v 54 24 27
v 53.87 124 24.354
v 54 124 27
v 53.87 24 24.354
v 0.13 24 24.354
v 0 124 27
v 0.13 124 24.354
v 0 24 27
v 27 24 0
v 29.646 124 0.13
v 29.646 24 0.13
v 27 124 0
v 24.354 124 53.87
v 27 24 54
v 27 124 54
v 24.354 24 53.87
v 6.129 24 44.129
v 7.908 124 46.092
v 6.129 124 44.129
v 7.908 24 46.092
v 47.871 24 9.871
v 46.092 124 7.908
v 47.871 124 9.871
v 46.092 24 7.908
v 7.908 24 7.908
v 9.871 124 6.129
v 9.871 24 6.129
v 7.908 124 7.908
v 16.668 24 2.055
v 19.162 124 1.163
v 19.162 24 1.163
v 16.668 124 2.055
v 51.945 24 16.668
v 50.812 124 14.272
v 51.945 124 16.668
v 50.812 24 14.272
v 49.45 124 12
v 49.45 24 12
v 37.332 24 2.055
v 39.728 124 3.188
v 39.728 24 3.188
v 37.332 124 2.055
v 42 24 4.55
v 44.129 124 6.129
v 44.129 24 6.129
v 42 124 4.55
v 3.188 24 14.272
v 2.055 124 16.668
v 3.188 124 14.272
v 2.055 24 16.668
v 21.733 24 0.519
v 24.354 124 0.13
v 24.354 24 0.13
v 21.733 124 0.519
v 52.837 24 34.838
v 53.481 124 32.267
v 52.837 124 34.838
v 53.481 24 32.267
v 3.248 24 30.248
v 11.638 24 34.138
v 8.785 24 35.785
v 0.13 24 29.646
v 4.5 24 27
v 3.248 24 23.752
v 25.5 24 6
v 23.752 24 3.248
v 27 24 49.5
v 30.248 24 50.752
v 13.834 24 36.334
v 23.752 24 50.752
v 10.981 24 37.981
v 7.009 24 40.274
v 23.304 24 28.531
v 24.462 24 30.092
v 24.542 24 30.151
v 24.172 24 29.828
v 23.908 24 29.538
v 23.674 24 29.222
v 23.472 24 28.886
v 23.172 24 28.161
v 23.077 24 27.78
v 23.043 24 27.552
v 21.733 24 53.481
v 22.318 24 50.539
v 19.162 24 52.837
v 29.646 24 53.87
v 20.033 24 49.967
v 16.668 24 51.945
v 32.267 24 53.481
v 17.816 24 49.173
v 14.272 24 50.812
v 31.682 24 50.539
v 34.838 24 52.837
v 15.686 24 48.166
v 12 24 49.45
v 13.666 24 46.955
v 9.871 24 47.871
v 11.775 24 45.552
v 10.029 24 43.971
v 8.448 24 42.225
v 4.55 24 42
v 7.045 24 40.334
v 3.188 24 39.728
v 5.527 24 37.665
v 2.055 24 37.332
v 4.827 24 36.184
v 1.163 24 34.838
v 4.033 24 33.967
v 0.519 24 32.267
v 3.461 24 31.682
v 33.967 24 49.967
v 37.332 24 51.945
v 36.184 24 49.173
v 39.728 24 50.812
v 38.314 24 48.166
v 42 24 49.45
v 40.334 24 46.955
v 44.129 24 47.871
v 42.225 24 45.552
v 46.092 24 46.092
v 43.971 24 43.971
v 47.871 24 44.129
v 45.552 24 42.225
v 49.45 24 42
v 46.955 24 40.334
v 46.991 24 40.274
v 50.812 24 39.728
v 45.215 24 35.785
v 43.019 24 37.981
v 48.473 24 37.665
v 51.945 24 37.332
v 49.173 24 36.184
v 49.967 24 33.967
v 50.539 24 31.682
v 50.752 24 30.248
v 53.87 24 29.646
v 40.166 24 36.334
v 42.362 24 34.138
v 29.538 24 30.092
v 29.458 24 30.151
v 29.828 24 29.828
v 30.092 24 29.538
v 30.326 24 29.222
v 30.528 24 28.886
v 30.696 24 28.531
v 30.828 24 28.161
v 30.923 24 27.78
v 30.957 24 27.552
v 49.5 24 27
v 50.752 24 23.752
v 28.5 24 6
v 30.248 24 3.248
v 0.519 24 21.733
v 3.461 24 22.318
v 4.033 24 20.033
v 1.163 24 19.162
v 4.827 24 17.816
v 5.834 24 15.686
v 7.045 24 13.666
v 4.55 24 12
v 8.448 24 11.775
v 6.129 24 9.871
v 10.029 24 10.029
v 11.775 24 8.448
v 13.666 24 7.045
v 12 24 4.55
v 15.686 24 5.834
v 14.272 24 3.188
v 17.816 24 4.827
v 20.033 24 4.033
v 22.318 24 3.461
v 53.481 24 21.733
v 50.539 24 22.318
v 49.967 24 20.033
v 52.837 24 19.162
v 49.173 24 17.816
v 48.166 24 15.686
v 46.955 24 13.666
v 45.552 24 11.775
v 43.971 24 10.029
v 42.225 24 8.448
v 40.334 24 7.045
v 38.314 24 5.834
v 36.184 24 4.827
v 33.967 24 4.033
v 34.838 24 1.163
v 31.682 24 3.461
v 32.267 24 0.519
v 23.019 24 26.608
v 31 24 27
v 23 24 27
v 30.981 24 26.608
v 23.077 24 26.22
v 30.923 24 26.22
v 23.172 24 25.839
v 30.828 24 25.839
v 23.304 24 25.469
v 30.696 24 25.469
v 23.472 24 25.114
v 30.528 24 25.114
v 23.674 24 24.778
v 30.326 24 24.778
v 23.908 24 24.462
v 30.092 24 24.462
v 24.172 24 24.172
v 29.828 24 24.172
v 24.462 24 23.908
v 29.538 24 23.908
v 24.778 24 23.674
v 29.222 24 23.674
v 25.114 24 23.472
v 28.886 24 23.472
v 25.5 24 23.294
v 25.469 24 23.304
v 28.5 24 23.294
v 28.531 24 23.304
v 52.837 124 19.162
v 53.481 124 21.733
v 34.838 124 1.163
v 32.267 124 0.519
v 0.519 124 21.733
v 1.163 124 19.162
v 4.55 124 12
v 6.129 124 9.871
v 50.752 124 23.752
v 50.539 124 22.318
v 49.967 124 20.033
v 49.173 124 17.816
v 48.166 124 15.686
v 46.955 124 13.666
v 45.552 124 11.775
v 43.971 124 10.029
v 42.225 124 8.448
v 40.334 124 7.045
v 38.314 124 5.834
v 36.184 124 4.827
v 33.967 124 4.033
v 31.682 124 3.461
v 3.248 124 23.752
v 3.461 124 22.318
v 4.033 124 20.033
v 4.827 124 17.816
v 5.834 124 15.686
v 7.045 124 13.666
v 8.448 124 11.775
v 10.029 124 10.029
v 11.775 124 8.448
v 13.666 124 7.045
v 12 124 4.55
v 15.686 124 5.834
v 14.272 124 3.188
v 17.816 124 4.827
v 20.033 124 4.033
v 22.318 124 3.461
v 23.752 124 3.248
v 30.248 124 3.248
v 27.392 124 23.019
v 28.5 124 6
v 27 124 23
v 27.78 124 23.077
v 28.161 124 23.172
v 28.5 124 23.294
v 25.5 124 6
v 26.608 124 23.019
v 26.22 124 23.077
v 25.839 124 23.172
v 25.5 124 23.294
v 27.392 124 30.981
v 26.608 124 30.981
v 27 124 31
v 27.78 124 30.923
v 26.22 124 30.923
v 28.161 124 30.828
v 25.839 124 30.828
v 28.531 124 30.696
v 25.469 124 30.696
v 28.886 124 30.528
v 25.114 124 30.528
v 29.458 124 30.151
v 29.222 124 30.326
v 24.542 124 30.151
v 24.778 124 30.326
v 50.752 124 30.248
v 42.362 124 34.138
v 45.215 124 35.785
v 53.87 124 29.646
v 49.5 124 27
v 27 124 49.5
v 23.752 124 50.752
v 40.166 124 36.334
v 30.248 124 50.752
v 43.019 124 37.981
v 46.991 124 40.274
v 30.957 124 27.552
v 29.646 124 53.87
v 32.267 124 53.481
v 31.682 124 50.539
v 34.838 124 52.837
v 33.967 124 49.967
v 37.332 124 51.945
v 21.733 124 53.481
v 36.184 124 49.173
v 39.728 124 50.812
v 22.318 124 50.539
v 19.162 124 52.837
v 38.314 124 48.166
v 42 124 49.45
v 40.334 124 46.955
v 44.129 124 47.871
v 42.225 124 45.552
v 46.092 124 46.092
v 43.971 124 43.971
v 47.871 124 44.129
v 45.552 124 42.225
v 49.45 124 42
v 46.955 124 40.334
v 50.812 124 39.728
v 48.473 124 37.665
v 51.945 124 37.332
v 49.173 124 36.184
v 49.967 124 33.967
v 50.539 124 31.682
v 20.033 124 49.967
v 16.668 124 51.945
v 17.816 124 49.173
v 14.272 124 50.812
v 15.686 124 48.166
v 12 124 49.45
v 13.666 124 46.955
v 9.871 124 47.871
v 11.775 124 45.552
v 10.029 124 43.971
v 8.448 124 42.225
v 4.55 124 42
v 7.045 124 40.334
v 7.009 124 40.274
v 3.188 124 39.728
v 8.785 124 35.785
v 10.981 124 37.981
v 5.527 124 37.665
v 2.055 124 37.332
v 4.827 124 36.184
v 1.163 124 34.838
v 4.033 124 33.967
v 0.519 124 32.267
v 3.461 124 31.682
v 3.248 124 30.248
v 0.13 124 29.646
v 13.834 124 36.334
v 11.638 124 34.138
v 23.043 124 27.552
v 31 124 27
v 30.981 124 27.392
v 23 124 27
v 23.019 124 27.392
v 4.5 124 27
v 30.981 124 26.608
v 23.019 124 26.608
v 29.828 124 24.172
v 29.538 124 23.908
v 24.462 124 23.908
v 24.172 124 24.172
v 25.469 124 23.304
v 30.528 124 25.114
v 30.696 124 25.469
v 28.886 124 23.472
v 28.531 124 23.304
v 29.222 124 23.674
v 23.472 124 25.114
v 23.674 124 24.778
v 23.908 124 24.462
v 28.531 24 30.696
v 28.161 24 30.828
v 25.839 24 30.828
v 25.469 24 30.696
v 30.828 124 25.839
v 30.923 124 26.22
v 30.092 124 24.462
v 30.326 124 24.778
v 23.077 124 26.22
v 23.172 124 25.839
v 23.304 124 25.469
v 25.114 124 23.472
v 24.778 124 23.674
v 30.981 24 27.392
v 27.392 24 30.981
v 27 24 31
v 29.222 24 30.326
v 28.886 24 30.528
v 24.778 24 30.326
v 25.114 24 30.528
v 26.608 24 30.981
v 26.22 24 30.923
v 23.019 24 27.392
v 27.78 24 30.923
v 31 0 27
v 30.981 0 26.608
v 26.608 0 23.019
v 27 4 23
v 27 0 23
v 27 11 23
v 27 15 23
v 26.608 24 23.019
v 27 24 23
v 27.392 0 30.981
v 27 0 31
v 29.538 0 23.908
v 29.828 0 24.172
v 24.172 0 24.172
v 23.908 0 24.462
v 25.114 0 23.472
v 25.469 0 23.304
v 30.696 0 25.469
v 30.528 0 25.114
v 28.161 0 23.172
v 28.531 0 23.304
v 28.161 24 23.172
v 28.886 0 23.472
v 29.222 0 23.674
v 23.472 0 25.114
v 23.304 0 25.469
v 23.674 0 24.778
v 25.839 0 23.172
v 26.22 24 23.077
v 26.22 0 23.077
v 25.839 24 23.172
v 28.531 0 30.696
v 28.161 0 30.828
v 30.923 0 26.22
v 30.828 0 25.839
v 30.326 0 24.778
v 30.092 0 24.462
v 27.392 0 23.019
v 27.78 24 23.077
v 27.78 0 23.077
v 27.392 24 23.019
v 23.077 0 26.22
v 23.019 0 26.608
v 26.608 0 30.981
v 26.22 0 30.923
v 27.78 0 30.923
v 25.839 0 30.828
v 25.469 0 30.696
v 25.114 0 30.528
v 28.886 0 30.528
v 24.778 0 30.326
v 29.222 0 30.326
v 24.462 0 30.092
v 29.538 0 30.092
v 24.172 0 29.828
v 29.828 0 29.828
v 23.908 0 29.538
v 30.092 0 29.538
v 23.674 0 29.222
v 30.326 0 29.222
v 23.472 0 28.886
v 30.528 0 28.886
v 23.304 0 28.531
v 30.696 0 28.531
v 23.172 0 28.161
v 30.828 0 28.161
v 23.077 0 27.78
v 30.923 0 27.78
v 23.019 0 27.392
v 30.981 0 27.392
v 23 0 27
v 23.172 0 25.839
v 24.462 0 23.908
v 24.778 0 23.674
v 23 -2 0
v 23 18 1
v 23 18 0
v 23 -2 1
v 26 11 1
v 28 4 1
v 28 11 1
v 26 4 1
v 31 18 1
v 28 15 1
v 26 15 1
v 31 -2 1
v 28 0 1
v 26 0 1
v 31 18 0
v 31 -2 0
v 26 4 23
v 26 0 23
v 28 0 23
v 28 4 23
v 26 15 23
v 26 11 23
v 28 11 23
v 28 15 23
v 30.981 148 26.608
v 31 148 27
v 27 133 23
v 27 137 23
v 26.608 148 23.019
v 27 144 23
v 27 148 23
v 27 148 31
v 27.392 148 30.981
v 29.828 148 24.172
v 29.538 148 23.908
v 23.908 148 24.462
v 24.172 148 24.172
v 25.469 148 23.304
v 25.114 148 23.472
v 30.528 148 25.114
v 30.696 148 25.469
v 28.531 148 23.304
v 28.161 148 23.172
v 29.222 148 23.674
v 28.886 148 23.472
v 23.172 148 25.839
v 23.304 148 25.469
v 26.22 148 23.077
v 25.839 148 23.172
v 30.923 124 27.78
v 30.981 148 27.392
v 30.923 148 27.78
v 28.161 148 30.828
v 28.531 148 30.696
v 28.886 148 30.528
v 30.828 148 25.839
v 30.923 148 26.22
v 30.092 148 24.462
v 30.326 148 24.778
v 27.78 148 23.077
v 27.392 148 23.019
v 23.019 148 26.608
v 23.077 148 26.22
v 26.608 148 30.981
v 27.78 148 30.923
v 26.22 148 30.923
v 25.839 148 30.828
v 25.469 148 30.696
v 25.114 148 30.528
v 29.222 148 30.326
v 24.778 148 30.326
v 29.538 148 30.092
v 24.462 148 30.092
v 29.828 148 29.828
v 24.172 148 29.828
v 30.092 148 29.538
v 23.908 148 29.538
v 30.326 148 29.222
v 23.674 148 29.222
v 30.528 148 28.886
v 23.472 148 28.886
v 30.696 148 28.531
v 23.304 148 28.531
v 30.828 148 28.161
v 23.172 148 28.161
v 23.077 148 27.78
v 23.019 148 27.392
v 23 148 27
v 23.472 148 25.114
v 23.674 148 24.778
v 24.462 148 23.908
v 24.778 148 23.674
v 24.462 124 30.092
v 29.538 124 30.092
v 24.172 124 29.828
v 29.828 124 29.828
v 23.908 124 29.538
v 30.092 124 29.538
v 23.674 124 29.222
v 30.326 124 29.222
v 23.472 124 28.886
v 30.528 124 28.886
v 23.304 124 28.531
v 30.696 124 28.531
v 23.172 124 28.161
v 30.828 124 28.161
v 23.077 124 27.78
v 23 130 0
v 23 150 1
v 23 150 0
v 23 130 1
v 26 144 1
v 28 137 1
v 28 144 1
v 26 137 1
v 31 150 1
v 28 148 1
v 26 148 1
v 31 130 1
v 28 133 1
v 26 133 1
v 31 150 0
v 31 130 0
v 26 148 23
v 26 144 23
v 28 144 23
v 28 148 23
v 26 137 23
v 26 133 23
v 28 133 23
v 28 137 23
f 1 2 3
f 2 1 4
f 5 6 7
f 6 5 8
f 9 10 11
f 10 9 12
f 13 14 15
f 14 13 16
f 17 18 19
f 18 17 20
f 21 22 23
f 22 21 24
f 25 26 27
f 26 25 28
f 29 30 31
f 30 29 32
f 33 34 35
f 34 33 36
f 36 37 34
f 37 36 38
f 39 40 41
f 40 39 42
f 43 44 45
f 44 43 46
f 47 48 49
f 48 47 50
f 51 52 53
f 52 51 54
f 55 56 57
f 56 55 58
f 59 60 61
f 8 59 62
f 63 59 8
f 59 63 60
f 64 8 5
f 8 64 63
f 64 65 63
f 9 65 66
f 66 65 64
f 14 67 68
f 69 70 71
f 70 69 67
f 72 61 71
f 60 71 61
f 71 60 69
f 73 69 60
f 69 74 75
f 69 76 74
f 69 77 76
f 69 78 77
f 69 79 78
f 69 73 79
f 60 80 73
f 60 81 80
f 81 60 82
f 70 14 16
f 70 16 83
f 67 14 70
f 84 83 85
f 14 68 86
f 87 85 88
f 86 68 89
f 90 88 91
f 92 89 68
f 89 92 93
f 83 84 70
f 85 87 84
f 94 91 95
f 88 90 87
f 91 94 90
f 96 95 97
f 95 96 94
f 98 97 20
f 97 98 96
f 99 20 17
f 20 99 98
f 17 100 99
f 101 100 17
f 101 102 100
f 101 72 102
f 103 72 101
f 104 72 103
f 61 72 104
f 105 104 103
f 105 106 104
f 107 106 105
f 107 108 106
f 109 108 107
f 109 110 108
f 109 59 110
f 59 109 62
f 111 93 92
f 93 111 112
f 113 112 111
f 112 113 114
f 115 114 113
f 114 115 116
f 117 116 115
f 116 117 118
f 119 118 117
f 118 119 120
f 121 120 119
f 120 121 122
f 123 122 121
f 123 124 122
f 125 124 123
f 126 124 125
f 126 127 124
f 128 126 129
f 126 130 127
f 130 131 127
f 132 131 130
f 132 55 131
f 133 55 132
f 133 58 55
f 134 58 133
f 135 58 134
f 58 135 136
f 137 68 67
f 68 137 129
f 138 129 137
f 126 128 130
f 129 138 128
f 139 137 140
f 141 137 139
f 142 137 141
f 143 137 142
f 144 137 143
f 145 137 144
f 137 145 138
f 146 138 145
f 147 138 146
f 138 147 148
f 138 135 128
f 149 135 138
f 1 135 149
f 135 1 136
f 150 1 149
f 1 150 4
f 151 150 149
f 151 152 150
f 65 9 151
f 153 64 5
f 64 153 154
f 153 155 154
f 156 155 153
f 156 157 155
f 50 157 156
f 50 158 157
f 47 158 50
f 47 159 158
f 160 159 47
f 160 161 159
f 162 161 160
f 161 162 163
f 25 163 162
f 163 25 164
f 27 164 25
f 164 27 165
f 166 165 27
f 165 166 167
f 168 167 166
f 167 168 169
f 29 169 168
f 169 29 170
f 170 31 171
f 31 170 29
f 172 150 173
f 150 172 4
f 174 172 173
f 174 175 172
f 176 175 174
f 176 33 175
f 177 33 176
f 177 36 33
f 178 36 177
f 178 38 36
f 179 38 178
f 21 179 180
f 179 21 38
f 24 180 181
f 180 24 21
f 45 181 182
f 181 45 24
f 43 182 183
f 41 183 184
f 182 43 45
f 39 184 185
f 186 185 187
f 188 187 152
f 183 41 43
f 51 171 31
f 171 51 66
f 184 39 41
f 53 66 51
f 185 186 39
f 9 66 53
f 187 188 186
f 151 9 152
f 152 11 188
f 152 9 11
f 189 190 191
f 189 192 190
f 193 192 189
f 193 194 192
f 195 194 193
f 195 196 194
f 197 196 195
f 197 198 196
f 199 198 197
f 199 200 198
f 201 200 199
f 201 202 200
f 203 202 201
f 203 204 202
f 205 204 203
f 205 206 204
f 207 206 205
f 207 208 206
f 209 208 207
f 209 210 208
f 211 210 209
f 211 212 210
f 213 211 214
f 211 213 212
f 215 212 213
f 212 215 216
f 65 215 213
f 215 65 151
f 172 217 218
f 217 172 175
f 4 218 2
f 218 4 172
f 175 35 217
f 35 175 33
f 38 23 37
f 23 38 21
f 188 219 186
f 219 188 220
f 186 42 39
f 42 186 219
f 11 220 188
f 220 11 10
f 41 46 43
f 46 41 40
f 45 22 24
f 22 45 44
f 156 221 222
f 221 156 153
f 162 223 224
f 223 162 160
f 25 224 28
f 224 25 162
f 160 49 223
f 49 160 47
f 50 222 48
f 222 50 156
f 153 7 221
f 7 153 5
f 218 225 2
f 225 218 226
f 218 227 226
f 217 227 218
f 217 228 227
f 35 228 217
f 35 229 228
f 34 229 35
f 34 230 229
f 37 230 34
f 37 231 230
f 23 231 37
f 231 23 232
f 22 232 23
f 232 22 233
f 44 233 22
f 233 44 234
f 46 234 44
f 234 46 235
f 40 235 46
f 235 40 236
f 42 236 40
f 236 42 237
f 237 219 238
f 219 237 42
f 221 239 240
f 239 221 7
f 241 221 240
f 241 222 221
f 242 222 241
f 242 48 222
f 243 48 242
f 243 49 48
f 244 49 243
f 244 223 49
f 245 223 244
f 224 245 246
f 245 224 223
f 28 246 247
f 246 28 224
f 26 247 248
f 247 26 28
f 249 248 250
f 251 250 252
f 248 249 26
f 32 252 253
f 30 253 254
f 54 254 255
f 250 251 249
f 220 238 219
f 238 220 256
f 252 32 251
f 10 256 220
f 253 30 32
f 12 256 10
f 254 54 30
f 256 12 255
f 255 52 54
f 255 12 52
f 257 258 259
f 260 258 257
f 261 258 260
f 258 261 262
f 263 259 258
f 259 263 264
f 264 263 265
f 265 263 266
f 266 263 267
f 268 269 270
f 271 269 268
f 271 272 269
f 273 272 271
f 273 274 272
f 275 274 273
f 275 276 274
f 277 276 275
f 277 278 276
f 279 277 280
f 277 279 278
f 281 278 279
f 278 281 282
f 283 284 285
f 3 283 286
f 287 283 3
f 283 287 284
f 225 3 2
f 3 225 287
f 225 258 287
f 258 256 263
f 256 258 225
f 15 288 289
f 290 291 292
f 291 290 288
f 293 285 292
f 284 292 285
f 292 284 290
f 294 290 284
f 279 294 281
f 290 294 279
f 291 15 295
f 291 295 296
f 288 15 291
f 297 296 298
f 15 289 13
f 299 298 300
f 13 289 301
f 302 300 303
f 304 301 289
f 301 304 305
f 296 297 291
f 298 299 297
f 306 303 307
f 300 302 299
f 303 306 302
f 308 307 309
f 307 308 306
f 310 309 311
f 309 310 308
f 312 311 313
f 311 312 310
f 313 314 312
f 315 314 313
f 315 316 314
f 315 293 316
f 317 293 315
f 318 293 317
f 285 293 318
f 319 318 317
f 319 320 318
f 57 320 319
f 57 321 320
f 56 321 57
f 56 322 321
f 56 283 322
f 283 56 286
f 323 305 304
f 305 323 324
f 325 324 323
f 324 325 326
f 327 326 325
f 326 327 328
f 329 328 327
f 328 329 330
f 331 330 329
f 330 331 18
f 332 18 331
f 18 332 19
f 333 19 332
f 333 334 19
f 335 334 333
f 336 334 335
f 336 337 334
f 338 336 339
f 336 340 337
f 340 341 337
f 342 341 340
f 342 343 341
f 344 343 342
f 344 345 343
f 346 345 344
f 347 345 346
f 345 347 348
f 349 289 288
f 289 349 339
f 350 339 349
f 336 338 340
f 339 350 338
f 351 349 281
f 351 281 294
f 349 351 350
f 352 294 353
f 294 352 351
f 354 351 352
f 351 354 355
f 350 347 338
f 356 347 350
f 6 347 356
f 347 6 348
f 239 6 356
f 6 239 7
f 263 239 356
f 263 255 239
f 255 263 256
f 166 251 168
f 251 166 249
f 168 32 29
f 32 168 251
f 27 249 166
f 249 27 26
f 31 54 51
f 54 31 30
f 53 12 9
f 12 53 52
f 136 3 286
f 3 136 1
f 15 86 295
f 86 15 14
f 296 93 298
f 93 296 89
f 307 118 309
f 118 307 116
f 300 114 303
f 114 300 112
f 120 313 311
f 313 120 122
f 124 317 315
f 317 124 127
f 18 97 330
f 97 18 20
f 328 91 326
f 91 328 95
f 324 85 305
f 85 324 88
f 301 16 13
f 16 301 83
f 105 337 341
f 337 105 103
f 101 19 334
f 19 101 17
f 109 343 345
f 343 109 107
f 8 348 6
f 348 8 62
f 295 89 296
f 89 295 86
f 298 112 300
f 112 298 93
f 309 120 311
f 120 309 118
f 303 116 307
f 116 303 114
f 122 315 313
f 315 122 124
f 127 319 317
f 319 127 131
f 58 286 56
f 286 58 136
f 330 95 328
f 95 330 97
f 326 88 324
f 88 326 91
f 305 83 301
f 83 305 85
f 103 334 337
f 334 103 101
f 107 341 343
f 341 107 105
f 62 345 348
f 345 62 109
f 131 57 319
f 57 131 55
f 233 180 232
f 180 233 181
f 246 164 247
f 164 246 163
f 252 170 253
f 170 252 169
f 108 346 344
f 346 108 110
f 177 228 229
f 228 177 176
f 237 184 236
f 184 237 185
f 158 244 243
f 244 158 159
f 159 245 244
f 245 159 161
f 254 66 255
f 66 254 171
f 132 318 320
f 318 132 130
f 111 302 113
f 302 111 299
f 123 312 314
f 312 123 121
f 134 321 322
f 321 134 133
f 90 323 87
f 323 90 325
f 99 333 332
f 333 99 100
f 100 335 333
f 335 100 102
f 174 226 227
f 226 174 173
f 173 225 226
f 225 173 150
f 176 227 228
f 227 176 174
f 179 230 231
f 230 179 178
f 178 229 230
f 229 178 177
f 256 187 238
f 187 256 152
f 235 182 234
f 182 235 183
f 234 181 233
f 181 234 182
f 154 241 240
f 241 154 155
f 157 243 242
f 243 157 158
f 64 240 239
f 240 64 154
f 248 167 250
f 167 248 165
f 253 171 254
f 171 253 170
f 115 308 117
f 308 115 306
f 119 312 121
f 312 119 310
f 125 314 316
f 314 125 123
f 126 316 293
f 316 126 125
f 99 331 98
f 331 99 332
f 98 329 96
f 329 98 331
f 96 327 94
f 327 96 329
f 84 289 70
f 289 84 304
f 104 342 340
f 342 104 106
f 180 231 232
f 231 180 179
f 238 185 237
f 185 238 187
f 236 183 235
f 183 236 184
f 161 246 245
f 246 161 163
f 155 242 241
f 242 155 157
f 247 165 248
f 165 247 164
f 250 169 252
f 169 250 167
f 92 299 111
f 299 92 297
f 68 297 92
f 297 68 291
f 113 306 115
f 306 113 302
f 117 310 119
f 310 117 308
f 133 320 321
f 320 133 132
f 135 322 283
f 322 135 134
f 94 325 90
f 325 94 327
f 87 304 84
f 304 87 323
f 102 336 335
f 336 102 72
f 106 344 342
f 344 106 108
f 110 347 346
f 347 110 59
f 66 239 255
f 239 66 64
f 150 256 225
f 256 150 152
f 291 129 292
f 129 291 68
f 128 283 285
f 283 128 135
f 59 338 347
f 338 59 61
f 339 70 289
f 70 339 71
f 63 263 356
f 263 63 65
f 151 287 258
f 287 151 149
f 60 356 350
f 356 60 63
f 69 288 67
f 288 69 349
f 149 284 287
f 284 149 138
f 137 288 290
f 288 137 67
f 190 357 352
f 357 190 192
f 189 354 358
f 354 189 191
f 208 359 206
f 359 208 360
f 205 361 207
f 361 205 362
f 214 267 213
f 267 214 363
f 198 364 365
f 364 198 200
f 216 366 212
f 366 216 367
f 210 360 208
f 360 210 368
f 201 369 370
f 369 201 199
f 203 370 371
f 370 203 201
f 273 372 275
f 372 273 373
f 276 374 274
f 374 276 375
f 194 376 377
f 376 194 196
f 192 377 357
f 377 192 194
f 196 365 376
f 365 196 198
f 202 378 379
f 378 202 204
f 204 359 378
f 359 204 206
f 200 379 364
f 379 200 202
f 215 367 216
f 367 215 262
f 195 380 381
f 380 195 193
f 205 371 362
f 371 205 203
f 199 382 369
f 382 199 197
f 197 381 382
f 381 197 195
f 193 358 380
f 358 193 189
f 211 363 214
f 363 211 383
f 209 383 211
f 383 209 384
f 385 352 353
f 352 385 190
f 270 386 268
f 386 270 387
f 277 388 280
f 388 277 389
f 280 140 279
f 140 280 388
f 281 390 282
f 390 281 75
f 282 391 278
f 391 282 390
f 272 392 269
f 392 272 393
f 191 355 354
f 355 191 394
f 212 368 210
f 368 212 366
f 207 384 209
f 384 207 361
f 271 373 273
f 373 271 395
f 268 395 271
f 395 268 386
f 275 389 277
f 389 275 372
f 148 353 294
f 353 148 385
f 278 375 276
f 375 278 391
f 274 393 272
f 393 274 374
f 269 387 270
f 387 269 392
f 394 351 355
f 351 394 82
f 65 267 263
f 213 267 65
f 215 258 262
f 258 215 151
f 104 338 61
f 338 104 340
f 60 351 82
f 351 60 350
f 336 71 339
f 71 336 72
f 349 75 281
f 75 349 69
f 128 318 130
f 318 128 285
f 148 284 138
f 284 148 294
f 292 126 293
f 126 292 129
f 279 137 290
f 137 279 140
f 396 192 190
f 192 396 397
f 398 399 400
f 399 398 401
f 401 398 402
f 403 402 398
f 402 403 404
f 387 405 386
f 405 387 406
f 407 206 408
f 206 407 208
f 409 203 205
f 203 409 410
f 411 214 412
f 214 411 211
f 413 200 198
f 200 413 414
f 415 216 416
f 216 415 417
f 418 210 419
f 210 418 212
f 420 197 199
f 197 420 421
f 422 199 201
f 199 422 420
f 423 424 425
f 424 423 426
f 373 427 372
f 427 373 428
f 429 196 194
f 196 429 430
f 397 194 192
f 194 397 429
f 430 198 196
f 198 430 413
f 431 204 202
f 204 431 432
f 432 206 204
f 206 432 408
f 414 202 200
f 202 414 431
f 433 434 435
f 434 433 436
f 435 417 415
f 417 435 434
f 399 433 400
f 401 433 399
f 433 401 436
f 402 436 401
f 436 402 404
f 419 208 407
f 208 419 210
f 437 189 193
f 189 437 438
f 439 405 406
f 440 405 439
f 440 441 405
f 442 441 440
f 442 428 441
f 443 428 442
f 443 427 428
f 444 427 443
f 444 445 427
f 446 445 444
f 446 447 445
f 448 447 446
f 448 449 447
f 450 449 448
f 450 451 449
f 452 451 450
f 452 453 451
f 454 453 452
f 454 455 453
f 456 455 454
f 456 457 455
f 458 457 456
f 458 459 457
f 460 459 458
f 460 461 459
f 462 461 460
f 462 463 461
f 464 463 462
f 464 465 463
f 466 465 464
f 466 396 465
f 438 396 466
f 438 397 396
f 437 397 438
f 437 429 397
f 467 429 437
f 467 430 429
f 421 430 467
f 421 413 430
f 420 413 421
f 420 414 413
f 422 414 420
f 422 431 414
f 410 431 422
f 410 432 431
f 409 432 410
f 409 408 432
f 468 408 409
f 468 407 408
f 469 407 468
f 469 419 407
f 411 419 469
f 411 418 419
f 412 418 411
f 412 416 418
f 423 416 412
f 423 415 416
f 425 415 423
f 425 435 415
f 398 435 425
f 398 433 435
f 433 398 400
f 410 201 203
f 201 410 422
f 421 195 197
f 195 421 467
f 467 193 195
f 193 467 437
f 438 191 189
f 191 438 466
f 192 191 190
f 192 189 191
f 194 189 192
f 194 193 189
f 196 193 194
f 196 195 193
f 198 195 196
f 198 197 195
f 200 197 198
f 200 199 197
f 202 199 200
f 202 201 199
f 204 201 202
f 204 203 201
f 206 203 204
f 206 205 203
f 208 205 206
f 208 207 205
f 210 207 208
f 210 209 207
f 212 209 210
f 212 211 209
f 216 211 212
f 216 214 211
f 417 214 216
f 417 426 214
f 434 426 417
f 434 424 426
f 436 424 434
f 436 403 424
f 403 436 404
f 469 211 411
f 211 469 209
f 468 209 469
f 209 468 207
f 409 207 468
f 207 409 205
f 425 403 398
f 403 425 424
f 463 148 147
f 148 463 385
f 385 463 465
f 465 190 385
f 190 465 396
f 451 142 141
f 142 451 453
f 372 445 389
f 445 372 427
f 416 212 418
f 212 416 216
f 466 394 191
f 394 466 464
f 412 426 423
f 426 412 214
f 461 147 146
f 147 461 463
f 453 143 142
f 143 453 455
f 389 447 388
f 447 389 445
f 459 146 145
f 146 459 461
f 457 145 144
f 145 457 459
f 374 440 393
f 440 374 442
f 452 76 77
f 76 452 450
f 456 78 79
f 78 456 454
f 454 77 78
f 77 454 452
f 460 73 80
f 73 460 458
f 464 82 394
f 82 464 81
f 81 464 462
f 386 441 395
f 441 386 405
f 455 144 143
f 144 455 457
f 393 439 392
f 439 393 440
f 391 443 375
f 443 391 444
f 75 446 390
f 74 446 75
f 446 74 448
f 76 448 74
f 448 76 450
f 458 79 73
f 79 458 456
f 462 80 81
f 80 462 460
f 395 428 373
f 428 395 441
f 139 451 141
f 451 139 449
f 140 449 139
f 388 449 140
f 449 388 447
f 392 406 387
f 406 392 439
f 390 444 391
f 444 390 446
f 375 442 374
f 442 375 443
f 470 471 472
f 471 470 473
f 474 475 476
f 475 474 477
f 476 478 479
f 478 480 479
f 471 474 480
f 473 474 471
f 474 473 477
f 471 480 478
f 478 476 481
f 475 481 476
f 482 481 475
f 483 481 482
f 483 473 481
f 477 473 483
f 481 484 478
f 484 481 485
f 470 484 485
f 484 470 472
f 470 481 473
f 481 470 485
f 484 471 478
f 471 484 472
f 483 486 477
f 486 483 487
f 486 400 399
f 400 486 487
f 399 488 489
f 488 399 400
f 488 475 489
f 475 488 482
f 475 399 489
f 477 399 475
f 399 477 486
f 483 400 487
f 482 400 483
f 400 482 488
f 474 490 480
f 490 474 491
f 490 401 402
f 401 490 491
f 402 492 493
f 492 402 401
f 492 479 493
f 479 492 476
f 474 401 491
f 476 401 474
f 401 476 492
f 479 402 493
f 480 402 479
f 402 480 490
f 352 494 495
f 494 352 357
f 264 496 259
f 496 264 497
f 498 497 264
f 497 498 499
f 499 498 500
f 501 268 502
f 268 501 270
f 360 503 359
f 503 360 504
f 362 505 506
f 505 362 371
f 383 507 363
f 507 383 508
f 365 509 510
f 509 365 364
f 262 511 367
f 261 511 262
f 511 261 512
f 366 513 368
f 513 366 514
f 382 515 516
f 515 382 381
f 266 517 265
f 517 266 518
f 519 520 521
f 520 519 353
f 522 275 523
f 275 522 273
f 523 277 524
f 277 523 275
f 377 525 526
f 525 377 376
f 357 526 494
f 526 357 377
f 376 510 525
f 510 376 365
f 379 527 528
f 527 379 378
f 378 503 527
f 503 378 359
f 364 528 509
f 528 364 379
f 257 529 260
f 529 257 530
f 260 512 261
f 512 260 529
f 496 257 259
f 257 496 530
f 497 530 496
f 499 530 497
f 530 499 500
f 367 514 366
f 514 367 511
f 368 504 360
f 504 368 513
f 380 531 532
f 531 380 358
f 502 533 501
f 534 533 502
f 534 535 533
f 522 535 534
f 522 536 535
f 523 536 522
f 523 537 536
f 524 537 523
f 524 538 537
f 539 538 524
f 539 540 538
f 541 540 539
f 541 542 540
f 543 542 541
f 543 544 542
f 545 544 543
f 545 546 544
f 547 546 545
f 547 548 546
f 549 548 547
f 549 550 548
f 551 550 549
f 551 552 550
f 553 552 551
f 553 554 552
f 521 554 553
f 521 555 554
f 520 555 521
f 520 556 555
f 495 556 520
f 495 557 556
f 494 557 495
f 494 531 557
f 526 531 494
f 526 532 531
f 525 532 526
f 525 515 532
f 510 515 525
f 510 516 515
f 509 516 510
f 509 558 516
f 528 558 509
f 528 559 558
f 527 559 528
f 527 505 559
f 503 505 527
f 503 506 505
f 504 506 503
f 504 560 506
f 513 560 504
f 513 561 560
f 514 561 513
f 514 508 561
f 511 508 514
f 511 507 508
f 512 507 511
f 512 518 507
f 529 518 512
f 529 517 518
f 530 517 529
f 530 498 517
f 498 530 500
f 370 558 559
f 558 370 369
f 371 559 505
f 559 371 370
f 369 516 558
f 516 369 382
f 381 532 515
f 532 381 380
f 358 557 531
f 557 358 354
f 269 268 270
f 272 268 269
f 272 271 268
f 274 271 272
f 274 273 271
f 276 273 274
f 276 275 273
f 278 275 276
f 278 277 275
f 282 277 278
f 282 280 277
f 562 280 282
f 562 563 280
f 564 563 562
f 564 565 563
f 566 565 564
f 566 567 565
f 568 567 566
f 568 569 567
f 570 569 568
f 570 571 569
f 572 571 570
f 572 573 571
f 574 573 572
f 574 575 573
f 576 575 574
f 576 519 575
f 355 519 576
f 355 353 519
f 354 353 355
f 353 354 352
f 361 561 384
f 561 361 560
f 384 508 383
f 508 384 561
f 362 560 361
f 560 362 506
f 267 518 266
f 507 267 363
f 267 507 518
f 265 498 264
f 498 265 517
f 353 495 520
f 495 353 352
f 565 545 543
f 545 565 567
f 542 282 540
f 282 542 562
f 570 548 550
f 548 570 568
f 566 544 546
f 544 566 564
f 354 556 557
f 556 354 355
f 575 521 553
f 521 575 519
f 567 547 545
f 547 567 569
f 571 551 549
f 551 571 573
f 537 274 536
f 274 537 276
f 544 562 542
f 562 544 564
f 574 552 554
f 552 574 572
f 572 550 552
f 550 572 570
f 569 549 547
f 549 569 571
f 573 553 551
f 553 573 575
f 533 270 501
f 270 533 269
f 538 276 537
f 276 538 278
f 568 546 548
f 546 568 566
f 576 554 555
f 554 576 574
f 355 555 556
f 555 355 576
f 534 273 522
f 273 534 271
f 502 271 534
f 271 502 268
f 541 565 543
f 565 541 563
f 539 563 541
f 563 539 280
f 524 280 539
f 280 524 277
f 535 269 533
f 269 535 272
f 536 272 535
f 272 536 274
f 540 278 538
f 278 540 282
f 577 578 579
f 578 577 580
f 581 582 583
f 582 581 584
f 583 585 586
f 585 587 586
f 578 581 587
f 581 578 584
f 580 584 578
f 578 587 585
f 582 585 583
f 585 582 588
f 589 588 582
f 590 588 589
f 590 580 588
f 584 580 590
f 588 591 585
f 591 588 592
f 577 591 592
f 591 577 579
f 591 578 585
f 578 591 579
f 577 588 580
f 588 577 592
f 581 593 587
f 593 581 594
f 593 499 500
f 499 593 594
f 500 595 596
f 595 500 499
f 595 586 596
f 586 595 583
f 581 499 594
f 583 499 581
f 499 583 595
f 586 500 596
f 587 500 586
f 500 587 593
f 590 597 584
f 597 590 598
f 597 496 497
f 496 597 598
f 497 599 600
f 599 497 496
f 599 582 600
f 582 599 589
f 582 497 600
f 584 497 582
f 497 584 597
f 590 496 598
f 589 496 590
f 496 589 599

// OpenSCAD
armLength = 24;
armDiameter = 8;
wallWidth = 3;
diameter = 54;
height = 100; // probably need a better measurement here

module rollingPin() {
    difference() {
        cylinder(d=diameter,h=height,$fn=64);
        translate([0,0,0]) cylinder(d=diameter-wallWidth*2,h=height+2,$fn=64);
    }

    cylinder(d=armDiameter,h=height,$fn=64);

    rollingPinLeg();
    rotate([0,0,120]) rollingPinLeg();
    rotate([0,0,240]) rollingPinLeg();

    difference() {
        cylinder(d=diameter,h=height,$fn=4);
        cylinder(d=diameter-wallWidth*wallWidth,h=height,$fn=4);
    }
}

module rollingPinLeg(width=wallWidth) {
    translate([-width/2,-1,0]) cube([width,diameter/2,height]);
}

module rollingPinArm() {
    translate([diameter/2,0,diameter/2]) rotate([-90,0,0]) cylinder(d=armDiameter,h=armLength,$fn=64);

    // supports
    translate([diameter/2-armDiameter/2,-2,0]) cube([armDiameter,armLength-4,1]);
    translate([diameter/2-armDiameter/8,0,0]) cube([armDiameter/4,armDiameter/2,diameter/2-armDiameter/2]);
    translate([diameter/2-armDiameter/8,armLength/2-1,0]) cube([armDiameter/4,armDiameter/2,diameter/2-armDiameter/2]);
}

color("LimeGreen") translate([diameter/2,armLength,diameter/2])
    rotate([-90,0,0])
        rollingPin();

color("SteelBlue") {
    rollingPinArm();
    translate([0,height+armLength*2,0]) mirror([0,1,0]) rollingPinArm();
}
